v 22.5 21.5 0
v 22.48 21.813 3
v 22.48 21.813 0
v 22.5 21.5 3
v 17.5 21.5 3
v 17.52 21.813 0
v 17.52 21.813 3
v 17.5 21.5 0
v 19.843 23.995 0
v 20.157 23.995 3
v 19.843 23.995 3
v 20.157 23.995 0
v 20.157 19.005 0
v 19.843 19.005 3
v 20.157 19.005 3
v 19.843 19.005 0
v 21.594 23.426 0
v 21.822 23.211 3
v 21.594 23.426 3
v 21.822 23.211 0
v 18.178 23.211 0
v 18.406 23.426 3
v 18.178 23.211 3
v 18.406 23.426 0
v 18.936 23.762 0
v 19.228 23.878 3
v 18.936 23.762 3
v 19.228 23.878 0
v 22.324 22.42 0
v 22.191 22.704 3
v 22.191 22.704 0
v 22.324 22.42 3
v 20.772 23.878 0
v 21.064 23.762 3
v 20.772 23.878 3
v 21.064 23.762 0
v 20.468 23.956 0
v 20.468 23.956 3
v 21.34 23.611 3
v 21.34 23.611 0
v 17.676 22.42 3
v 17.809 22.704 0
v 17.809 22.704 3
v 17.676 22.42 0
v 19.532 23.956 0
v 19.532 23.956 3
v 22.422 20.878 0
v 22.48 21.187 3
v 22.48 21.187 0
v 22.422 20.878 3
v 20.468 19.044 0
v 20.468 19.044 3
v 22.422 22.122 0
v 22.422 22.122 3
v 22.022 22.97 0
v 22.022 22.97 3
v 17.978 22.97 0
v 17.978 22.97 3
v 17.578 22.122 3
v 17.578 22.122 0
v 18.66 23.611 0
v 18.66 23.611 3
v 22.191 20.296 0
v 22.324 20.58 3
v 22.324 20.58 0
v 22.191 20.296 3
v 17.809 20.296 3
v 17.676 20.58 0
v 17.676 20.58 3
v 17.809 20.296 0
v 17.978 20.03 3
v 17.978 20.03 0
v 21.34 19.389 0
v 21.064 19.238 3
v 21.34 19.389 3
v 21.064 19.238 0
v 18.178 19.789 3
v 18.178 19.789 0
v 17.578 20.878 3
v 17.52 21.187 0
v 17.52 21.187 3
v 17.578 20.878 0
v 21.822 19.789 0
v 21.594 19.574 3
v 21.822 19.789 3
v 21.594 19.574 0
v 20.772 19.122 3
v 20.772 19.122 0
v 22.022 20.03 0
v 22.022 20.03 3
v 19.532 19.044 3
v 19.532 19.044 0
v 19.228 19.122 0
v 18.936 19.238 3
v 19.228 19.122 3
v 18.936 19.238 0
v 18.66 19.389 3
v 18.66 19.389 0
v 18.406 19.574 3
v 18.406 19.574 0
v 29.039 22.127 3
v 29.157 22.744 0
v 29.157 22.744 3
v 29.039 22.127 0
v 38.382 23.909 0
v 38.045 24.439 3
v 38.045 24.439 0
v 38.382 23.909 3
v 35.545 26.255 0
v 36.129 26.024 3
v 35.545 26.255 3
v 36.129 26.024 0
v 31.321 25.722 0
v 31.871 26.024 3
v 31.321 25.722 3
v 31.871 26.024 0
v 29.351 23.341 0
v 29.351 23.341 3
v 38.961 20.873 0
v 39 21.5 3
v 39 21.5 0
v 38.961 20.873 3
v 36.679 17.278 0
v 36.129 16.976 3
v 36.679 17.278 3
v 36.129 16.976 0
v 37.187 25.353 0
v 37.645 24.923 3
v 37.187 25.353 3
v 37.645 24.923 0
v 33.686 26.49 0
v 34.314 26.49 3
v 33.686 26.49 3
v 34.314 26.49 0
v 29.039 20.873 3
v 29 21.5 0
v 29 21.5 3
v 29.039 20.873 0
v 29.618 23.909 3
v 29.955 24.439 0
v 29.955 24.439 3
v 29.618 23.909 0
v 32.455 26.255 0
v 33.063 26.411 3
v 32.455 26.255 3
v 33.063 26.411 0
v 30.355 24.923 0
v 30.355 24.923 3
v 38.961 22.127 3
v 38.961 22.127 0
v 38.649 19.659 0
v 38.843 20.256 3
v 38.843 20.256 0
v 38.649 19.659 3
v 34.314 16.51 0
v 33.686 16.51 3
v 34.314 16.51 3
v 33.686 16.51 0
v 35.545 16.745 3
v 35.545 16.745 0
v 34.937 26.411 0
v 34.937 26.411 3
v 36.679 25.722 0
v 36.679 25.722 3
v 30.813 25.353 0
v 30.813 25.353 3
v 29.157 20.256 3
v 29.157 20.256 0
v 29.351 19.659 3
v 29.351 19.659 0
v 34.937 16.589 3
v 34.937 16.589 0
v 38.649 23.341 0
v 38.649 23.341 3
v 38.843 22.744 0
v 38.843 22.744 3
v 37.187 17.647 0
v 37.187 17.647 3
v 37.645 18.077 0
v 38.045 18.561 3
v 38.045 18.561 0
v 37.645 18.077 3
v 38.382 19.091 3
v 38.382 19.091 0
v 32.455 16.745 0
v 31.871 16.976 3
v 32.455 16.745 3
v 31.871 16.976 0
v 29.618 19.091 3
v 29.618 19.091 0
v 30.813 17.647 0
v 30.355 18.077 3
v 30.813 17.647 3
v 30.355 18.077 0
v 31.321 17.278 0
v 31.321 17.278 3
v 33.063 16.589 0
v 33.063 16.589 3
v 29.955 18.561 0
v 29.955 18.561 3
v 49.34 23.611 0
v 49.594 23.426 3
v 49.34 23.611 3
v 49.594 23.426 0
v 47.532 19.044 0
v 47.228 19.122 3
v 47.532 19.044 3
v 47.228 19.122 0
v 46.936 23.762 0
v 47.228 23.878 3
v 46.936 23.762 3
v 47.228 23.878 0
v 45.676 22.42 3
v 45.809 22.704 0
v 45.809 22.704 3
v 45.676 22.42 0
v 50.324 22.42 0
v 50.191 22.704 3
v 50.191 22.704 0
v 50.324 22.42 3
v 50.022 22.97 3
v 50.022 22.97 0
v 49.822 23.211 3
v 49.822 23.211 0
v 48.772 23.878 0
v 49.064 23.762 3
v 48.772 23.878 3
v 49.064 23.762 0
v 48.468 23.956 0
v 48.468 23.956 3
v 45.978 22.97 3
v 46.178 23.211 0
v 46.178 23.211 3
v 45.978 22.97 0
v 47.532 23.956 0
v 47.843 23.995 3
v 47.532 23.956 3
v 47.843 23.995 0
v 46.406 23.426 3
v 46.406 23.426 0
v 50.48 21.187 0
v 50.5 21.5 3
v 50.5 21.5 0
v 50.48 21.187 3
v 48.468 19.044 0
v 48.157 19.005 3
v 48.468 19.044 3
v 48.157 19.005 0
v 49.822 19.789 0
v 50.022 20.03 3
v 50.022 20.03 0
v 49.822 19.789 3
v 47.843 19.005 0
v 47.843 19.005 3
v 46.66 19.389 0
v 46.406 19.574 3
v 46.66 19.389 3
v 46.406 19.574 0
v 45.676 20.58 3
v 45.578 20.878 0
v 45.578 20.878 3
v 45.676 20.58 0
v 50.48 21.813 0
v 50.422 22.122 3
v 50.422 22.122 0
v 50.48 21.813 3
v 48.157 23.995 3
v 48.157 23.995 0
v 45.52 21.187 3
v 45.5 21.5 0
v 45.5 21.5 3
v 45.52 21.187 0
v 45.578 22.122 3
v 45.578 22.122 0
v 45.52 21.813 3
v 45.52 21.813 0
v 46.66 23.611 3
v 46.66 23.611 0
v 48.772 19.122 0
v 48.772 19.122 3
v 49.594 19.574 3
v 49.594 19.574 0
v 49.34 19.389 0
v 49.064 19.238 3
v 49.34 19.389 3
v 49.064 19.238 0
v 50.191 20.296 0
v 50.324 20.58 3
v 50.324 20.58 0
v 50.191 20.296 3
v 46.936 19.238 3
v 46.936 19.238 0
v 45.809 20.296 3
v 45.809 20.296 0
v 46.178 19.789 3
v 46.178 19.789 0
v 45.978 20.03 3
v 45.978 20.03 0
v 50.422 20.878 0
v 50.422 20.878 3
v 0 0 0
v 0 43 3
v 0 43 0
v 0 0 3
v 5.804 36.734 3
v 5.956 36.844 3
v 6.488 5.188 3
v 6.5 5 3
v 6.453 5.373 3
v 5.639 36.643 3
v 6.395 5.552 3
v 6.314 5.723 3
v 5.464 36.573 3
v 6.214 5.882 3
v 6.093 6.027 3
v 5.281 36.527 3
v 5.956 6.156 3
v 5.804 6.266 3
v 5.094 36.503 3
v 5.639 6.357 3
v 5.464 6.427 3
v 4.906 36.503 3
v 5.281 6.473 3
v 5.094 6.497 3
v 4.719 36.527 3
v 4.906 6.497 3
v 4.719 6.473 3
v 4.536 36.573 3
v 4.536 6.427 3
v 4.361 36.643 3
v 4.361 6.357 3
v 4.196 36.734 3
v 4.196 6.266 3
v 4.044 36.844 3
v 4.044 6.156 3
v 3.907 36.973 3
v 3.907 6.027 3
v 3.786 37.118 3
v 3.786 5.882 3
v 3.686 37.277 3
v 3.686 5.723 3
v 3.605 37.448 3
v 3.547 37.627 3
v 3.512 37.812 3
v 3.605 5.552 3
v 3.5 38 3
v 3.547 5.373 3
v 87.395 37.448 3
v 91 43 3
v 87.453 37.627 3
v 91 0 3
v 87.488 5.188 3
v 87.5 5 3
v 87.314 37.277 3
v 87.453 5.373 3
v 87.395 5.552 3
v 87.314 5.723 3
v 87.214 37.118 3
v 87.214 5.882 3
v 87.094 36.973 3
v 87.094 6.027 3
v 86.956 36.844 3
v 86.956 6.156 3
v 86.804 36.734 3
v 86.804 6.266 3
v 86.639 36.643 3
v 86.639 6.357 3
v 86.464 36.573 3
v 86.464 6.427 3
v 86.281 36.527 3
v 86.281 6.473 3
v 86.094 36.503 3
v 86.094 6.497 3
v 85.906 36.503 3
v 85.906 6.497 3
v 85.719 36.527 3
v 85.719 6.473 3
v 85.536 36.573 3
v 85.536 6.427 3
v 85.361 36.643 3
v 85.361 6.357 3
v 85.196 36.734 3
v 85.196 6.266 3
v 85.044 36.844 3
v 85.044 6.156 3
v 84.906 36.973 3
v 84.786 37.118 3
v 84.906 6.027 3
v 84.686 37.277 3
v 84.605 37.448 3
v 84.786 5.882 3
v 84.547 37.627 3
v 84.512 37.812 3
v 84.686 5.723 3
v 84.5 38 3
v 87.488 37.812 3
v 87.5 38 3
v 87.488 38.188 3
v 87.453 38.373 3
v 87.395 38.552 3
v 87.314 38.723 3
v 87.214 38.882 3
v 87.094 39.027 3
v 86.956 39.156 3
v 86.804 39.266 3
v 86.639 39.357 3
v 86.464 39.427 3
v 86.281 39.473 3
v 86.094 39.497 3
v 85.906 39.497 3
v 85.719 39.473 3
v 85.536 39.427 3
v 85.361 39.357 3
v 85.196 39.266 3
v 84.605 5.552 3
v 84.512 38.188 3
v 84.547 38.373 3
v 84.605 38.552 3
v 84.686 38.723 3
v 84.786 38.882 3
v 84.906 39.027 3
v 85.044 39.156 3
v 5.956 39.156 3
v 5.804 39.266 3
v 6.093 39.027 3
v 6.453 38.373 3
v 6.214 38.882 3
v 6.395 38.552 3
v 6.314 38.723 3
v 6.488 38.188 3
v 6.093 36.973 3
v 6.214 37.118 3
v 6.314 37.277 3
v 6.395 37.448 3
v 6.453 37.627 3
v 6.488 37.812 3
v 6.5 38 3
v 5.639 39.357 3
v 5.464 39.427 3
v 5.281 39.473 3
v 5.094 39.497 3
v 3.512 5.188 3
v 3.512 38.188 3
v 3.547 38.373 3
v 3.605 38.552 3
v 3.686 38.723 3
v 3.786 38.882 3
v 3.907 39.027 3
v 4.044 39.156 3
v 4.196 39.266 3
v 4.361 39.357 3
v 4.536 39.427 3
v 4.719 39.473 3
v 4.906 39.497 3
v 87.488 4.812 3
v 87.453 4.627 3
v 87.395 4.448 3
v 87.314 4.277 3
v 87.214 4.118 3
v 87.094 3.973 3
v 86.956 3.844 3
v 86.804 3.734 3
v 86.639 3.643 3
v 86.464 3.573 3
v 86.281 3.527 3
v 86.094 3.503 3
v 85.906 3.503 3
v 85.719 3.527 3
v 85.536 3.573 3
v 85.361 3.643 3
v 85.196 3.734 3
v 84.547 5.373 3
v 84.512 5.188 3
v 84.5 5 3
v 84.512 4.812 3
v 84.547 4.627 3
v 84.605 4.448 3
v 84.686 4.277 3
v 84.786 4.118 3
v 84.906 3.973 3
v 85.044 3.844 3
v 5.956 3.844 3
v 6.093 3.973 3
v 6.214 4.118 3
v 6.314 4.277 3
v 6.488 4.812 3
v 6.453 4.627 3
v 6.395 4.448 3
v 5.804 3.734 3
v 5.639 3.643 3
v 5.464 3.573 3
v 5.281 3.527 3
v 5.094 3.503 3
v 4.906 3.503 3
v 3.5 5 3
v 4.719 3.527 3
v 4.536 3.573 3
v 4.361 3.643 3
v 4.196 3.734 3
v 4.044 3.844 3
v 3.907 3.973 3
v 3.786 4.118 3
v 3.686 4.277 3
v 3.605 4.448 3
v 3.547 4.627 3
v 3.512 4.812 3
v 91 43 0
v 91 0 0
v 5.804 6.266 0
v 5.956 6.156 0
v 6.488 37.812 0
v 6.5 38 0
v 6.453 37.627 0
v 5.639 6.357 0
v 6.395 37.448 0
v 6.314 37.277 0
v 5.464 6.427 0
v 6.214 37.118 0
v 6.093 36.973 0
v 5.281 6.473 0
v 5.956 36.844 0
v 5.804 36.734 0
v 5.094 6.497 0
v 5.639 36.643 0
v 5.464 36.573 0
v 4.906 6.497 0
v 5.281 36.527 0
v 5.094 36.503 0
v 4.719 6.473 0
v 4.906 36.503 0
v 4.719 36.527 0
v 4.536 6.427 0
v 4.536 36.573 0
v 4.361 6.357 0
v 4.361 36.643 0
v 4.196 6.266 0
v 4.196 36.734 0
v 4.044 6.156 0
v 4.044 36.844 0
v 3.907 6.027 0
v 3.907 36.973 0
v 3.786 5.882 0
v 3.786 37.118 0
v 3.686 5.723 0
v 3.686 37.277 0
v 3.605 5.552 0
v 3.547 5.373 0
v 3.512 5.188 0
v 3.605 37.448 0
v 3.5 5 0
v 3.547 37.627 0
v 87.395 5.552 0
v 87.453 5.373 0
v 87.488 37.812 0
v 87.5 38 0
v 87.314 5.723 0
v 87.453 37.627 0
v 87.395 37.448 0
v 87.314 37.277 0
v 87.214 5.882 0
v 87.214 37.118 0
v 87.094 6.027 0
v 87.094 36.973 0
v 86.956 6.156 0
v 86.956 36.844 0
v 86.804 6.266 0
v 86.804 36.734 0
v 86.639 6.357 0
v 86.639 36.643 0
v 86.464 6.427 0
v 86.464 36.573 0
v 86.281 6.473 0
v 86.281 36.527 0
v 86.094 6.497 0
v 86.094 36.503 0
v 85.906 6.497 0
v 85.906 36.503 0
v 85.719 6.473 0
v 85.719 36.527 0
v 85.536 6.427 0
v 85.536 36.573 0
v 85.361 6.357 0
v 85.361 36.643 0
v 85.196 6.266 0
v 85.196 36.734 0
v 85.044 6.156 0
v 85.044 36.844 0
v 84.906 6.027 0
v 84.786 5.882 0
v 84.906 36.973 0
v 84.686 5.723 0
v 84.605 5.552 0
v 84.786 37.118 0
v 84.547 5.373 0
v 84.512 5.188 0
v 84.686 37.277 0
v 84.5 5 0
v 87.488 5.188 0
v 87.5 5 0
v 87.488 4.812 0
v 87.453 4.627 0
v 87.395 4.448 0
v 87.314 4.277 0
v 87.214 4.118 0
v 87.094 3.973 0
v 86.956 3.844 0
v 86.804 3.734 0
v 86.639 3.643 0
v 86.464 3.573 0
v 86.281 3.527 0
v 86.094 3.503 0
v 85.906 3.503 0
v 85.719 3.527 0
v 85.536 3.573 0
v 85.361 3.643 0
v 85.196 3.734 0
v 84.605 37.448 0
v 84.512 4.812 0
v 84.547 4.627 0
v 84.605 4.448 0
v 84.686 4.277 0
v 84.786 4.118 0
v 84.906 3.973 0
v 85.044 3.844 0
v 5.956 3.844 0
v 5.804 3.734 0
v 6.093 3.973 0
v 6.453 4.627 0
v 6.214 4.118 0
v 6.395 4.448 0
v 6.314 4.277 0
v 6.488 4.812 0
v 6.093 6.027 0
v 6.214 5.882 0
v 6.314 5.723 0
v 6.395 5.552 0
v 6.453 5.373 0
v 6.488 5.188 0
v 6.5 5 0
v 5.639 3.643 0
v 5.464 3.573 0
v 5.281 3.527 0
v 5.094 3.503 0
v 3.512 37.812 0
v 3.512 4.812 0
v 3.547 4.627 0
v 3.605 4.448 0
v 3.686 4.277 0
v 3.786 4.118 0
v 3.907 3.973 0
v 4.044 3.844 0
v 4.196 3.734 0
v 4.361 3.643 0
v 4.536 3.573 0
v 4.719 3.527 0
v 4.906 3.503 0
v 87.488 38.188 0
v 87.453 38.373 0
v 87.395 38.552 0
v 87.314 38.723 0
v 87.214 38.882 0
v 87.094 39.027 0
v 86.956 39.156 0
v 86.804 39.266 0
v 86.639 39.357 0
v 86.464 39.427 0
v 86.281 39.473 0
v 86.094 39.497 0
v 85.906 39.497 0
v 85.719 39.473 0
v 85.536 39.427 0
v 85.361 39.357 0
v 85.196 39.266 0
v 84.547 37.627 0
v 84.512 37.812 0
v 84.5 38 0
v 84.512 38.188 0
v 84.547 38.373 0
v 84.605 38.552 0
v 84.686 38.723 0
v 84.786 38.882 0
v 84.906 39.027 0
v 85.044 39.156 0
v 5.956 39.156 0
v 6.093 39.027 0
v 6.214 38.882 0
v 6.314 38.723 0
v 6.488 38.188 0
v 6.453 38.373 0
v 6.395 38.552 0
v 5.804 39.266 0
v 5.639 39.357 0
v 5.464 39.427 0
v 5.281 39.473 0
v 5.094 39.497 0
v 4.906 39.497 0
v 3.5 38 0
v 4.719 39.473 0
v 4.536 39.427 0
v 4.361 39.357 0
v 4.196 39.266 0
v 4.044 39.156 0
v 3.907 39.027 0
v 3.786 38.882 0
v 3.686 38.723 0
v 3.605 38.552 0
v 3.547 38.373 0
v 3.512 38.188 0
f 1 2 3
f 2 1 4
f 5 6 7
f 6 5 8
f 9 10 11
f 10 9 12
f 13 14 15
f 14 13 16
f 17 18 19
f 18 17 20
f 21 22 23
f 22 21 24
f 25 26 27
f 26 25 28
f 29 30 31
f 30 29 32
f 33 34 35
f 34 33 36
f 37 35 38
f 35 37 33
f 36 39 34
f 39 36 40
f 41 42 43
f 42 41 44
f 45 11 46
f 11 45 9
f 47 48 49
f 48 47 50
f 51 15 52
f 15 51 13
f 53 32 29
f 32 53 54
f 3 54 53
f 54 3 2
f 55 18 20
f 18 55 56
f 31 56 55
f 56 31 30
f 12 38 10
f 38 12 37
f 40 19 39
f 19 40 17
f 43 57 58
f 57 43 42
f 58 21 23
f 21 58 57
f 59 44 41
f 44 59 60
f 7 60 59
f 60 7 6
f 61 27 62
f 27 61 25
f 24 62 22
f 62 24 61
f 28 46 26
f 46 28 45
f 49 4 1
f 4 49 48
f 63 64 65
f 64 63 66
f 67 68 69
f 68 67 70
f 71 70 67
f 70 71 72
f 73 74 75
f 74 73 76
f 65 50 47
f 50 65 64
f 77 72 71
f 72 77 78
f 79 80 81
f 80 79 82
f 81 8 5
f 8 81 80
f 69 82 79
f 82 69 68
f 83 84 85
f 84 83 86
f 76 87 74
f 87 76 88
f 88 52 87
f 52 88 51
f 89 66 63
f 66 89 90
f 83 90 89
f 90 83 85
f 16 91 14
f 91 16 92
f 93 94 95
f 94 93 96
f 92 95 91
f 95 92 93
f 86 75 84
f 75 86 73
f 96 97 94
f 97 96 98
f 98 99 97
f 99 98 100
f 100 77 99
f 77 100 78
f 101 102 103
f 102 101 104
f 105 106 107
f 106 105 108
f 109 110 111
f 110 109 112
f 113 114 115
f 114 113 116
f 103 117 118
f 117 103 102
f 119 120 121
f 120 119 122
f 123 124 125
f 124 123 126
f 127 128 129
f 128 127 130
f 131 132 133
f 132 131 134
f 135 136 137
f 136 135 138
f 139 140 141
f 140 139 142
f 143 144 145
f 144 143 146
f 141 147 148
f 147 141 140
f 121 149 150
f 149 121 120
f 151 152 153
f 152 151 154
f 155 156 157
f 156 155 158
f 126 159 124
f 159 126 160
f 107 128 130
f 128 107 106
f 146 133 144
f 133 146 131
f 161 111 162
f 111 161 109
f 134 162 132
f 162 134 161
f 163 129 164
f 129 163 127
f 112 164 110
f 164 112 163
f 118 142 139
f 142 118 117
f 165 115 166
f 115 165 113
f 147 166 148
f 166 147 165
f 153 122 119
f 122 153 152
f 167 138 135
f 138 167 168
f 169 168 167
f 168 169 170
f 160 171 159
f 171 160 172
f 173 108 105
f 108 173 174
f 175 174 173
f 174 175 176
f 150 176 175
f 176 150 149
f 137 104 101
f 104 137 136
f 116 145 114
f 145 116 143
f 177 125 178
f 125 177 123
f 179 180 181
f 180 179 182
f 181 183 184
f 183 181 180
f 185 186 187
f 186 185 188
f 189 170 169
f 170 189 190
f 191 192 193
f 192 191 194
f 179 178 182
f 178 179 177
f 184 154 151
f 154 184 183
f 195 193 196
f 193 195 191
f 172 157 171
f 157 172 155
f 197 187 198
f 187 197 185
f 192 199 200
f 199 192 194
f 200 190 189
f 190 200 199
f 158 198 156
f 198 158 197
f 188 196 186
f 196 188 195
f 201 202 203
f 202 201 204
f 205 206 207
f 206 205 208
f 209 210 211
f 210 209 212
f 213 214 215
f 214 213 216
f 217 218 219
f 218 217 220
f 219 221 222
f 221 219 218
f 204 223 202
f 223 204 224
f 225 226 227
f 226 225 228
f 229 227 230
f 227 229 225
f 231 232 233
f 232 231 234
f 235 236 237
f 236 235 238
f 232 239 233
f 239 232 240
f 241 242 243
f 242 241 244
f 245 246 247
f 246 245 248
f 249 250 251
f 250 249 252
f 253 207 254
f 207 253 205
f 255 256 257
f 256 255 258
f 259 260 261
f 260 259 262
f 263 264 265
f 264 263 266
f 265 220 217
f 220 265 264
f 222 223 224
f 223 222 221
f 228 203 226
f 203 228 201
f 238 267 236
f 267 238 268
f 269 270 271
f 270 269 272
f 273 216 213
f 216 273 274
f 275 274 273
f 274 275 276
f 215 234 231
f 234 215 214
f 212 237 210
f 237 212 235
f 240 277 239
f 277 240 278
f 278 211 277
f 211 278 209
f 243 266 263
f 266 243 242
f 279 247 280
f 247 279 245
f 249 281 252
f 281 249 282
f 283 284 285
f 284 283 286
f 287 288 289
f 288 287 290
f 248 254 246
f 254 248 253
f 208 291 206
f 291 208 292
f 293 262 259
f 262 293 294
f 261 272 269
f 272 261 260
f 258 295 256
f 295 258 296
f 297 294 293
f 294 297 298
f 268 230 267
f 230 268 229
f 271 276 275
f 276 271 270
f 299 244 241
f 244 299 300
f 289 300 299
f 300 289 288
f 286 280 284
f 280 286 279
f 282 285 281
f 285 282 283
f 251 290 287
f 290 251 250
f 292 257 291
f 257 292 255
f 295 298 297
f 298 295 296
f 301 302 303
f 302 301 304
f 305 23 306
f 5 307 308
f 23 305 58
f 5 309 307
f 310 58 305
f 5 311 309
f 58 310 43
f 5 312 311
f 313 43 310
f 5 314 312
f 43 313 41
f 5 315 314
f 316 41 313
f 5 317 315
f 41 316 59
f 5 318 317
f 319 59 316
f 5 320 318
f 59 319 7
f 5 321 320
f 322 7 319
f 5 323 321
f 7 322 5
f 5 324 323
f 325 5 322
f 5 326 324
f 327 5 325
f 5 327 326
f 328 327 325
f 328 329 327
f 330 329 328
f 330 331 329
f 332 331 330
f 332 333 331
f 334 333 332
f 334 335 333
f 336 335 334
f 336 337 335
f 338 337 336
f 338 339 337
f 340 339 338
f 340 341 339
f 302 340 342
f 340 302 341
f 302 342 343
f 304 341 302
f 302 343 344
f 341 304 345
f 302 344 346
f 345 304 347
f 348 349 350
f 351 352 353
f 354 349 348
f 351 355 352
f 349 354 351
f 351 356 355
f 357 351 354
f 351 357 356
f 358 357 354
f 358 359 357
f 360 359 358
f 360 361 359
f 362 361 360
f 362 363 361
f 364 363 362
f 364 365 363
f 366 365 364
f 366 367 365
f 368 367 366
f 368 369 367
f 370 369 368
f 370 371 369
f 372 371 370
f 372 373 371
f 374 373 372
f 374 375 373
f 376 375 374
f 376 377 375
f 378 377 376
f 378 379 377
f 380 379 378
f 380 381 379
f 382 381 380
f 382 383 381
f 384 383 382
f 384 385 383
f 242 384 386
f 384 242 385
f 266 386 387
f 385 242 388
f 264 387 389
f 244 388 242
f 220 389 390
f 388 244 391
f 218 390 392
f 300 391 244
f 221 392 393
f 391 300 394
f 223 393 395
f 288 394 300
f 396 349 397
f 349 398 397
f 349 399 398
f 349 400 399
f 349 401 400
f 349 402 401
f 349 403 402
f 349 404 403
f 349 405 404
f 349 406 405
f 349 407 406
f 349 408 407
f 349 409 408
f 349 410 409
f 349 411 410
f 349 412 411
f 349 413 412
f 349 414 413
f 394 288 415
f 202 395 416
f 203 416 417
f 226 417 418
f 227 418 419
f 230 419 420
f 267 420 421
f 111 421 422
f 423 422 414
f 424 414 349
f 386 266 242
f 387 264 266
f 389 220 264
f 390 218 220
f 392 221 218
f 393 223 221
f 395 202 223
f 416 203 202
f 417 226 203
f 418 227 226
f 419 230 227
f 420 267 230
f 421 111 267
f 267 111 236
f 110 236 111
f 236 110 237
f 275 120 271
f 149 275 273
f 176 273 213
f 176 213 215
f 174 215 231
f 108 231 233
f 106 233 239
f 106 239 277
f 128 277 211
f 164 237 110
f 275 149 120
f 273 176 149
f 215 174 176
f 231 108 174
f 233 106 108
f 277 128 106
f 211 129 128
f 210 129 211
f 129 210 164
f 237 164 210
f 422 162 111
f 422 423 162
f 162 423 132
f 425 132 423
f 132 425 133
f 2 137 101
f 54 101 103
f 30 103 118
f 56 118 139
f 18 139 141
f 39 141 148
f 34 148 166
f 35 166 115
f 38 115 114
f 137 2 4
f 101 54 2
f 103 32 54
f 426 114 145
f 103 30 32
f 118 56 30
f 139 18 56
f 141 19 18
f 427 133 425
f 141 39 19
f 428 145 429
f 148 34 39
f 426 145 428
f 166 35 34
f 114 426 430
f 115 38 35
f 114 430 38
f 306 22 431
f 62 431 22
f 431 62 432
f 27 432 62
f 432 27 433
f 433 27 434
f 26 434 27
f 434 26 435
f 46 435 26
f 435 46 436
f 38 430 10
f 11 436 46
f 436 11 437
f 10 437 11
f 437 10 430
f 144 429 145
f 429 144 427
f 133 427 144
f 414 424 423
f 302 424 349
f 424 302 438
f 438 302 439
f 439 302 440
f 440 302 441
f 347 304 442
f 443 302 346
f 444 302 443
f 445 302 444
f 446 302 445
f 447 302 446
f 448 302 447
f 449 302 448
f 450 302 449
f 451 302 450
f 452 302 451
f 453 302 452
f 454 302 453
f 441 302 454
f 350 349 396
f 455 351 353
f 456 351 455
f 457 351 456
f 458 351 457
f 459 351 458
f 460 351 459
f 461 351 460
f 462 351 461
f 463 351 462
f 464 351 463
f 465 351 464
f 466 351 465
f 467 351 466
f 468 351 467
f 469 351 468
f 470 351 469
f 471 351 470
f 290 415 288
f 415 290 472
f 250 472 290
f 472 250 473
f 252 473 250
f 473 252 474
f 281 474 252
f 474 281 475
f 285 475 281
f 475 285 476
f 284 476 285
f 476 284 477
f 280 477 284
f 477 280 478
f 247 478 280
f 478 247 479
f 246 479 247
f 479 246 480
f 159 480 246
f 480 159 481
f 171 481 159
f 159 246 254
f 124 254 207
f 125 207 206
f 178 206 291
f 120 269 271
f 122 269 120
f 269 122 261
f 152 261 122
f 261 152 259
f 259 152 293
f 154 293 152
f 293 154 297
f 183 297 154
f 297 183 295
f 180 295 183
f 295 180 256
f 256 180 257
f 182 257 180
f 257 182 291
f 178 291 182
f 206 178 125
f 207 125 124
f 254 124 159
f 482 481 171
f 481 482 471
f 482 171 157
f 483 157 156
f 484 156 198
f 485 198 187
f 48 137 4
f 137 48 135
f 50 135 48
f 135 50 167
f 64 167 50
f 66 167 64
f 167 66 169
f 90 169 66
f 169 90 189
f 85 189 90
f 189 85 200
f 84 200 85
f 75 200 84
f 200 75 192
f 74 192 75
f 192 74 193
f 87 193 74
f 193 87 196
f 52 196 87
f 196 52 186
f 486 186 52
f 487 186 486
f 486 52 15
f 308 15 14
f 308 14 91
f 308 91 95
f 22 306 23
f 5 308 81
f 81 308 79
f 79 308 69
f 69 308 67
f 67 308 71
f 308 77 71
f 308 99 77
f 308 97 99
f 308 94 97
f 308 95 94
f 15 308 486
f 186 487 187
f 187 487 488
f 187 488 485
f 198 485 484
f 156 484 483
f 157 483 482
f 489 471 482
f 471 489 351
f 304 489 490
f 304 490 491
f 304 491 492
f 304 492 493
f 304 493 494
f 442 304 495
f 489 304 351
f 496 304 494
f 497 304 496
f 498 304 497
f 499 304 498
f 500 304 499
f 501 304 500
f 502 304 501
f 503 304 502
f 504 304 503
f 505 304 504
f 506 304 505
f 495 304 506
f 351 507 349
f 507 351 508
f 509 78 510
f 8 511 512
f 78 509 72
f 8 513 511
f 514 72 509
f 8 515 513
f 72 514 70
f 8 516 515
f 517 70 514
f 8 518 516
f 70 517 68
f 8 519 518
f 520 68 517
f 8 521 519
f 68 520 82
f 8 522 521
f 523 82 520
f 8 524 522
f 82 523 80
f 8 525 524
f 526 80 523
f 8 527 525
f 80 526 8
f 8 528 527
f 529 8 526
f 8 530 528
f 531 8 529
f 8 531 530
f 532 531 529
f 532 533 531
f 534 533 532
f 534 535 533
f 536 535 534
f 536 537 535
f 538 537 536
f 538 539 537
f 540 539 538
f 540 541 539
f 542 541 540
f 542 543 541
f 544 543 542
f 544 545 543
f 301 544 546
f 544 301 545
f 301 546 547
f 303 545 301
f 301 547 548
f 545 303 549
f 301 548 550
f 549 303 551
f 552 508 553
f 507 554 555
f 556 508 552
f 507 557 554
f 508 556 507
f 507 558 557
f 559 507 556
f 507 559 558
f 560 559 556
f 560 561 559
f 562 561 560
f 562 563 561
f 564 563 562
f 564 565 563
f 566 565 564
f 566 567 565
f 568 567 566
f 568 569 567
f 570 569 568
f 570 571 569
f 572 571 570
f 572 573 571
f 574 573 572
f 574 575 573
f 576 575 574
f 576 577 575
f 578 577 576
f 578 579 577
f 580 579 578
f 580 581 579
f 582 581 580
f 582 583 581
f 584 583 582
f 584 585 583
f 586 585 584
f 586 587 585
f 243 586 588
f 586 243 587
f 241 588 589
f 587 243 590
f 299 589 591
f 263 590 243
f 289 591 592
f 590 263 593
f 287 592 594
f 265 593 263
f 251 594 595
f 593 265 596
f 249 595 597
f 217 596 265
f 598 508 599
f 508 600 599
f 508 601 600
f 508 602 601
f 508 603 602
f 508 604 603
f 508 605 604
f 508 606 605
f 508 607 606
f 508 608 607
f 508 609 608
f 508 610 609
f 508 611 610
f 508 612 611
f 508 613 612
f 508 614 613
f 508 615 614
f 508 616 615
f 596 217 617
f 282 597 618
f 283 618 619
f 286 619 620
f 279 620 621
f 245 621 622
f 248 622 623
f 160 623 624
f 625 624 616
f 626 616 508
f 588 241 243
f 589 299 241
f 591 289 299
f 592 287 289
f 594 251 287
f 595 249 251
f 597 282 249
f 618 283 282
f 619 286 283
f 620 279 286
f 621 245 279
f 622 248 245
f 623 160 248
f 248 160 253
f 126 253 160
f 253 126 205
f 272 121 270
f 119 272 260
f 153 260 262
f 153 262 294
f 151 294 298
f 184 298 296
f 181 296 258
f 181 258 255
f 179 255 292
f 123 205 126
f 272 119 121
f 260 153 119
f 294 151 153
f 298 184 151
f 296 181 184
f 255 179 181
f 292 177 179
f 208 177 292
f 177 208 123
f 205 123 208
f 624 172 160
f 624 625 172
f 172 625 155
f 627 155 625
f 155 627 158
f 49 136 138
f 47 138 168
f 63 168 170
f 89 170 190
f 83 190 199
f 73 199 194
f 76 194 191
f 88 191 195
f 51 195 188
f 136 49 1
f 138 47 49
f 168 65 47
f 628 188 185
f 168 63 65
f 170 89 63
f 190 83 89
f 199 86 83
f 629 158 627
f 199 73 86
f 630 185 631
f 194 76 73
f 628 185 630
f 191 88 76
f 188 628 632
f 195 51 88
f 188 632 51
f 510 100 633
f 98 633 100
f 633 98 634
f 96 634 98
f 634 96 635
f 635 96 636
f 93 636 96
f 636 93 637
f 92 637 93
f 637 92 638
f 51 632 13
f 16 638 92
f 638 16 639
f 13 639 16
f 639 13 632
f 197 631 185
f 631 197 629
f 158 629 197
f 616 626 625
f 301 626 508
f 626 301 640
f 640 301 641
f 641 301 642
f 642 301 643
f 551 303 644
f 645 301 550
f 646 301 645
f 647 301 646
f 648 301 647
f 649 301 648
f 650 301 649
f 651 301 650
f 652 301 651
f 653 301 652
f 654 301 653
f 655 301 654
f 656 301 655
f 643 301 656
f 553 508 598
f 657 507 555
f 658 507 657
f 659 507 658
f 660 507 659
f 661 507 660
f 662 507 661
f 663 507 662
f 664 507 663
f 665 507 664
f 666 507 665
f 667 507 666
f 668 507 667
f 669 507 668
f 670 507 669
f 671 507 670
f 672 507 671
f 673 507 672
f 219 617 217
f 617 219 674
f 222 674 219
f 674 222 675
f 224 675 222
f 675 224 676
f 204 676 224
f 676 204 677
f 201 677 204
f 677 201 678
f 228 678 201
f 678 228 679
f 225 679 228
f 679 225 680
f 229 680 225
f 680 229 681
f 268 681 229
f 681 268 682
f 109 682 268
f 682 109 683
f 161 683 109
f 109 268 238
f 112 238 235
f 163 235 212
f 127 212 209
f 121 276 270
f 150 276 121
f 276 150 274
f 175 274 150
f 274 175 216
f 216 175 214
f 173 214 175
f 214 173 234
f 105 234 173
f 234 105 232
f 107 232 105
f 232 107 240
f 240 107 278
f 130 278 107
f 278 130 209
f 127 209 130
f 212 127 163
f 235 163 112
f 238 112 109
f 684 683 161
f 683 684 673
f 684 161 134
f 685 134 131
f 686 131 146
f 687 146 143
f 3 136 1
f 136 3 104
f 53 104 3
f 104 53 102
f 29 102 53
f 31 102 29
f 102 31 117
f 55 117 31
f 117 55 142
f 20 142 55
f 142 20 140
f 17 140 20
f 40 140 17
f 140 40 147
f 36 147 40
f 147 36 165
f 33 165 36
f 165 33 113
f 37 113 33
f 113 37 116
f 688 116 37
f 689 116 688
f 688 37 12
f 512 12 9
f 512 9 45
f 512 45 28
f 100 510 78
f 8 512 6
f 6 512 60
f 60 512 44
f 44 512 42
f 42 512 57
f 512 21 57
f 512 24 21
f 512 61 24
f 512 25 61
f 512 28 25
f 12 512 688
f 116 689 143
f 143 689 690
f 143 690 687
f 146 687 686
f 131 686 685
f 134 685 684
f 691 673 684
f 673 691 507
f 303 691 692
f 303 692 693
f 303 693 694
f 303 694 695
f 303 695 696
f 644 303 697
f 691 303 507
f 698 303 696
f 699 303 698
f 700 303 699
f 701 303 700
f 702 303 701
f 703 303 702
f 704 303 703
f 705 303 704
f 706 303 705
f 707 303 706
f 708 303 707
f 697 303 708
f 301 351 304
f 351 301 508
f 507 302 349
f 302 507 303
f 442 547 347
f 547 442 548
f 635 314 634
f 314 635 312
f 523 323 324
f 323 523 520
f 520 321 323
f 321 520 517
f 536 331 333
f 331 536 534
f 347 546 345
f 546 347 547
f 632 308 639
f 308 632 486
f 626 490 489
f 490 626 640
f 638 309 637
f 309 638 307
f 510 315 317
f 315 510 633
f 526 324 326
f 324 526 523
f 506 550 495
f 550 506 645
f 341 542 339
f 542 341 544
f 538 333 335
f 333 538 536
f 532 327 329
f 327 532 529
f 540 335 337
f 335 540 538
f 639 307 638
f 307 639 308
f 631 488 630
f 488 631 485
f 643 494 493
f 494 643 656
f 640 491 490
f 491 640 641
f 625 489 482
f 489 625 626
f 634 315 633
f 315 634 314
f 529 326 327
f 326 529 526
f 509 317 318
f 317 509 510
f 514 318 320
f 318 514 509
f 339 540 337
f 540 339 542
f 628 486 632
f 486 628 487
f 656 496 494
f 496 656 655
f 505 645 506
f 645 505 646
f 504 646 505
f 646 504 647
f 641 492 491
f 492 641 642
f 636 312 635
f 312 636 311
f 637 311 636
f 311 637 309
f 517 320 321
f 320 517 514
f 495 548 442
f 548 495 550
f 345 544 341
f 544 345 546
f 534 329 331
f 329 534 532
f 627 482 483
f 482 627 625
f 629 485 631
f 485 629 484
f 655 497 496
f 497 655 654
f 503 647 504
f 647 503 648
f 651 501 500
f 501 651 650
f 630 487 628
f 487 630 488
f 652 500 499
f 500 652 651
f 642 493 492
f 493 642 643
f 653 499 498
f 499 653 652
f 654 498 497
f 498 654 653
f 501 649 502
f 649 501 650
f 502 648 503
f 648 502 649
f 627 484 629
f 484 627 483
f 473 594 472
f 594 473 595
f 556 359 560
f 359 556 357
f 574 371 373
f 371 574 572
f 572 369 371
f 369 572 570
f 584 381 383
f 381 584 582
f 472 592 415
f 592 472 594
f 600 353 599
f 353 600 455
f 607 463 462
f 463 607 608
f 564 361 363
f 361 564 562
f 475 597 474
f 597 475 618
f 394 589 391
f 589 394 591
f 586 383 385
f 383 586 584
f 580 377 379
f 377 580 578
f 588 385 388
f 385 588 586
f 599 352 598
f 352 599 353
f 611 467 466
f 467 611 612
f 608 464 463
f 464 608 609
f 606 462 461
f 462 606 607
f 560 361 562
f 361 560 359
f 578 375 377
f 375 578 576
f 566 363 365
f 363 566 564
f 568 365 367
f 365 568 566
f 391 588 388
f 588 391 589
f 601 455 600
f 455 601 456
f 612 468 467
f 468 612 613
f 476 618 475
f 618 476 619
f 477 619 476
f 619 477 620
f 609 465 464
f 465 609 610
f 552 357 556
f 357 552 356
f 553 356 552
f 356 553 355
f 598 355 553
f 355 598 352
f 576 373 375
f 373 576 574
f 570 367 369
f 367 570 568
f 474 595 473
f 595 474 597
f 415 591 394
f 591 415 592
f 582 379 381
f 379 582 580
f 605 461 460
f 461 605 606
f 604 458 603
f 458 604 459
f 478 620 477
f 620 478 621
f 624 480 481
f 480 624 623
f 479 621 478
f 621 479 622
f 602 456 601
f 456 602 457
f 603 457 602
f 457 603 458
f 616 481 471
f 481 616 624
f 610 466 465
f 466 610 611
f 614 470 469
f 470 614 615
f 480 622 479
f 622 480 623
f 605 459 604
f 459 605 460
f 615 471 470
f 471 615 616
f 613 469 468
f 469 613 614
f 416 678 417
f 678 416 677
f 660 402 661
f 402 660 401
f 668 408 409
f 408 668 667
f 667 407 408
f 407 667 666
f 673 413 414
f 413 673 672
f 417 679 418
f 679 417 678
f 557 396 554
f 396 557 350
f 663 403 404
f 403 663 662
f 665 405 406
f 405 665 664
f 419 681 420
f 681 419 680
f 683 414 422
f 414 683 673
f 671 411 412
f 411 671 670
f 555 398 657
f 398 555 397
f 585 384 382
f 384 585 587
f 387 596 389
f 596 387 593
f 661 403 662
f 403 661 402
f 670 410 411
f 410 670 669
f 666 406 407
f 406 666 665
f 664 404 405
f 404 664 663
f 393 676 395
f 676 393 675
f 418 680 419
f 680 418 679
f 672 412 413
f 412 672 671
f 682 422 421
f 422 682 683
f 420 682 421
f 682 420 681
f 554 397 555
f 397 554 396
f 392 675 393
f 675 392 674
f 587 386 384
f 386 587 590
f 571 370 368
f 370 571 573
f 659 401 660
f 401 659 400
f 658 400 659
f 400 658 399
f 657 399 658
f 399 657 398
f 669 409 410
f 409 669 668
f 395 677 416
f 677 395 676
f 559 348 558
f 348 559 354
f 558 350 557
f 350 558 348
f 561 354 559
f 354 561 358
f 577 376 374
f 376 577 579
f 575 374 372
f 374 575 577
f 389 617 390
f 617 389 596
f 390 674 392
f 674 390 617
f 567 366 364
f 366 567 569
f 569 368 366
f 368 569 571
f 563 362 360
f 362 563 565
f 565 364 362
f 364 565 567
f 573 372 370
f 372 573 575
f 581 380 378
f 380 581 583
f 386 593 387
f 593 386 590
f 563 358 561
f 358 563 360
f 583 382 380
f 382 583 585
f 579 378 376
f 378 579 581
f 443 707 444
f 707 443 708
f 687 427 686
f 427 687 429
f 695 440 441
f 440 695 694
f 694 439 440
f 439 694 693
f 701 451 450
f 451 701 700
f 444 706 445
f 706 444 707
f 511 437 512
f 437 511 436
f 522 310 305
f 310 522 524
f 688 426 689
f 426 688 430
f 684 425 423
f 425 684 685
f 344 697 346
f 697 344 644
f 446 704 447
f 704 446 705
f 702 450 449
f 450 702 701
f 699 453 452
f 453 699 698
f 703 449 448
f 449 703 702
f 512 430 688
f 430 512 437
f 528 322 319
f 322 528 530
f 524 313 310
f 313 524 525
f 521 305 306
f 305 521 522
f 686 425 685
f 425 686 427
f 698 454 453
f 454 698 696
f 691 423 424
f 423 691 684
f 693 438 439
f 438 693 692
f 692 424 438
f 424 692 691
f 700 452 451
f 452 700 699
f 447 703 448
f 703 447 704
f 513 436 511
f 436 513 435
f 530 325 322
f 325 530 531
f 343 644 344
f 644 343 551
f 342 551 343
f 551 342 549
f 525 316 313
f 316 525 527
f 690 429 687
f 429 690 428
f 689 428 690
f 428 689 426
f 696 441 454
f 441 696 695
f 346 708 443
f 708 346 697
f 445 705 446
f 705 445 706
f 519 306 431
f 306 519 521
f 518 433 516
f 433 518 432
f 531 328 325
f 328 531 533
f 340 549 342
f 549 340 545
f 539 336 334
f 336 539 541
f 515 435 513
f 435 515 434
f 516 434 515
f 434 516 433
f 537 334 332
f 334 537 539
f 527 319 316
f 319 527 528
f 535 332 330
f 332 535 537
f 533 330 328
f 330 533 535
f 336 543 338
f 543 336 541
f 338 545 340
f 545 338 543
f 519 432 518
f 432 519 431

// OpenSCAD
// power jack 
// 28mm between screws
// 3mm screw diameter (5mm clearance)
// 10mm usb port opening

// default resolution
$fn = 50;

difference(){
    
    // main panel
    cube([91,43,3]);
    
    // panel mounting screw holes (5mm from edge, 3mm diam)
    translate([5,5,-1]){
        cylinder(r=3/2, h=5);
    }
    
    translate([(91-5),5,-1]){
        cylinder(r=3/2, h=5);
    }

    translate([(91-5),(43-5),-1]){
        cylinder(r=3/2, h=5);
    }

    translate([5,(43-5),-1]){
        cylinder(r=3/2, h=5);
    }    
    
    // power input
    translate([20,(43/2),-1]){
        // left screw
        cylinder(r=5/2, h=5);
        
        // usb socket hole
        translate([28/2,0,0]){
            cylinder(r=10/2, h=5);
        }
        
        // right screw
        translate([28,0,0]){
            cylinder(r=5/2, h=5);
        }
    }
    
    
    // phono output
}
